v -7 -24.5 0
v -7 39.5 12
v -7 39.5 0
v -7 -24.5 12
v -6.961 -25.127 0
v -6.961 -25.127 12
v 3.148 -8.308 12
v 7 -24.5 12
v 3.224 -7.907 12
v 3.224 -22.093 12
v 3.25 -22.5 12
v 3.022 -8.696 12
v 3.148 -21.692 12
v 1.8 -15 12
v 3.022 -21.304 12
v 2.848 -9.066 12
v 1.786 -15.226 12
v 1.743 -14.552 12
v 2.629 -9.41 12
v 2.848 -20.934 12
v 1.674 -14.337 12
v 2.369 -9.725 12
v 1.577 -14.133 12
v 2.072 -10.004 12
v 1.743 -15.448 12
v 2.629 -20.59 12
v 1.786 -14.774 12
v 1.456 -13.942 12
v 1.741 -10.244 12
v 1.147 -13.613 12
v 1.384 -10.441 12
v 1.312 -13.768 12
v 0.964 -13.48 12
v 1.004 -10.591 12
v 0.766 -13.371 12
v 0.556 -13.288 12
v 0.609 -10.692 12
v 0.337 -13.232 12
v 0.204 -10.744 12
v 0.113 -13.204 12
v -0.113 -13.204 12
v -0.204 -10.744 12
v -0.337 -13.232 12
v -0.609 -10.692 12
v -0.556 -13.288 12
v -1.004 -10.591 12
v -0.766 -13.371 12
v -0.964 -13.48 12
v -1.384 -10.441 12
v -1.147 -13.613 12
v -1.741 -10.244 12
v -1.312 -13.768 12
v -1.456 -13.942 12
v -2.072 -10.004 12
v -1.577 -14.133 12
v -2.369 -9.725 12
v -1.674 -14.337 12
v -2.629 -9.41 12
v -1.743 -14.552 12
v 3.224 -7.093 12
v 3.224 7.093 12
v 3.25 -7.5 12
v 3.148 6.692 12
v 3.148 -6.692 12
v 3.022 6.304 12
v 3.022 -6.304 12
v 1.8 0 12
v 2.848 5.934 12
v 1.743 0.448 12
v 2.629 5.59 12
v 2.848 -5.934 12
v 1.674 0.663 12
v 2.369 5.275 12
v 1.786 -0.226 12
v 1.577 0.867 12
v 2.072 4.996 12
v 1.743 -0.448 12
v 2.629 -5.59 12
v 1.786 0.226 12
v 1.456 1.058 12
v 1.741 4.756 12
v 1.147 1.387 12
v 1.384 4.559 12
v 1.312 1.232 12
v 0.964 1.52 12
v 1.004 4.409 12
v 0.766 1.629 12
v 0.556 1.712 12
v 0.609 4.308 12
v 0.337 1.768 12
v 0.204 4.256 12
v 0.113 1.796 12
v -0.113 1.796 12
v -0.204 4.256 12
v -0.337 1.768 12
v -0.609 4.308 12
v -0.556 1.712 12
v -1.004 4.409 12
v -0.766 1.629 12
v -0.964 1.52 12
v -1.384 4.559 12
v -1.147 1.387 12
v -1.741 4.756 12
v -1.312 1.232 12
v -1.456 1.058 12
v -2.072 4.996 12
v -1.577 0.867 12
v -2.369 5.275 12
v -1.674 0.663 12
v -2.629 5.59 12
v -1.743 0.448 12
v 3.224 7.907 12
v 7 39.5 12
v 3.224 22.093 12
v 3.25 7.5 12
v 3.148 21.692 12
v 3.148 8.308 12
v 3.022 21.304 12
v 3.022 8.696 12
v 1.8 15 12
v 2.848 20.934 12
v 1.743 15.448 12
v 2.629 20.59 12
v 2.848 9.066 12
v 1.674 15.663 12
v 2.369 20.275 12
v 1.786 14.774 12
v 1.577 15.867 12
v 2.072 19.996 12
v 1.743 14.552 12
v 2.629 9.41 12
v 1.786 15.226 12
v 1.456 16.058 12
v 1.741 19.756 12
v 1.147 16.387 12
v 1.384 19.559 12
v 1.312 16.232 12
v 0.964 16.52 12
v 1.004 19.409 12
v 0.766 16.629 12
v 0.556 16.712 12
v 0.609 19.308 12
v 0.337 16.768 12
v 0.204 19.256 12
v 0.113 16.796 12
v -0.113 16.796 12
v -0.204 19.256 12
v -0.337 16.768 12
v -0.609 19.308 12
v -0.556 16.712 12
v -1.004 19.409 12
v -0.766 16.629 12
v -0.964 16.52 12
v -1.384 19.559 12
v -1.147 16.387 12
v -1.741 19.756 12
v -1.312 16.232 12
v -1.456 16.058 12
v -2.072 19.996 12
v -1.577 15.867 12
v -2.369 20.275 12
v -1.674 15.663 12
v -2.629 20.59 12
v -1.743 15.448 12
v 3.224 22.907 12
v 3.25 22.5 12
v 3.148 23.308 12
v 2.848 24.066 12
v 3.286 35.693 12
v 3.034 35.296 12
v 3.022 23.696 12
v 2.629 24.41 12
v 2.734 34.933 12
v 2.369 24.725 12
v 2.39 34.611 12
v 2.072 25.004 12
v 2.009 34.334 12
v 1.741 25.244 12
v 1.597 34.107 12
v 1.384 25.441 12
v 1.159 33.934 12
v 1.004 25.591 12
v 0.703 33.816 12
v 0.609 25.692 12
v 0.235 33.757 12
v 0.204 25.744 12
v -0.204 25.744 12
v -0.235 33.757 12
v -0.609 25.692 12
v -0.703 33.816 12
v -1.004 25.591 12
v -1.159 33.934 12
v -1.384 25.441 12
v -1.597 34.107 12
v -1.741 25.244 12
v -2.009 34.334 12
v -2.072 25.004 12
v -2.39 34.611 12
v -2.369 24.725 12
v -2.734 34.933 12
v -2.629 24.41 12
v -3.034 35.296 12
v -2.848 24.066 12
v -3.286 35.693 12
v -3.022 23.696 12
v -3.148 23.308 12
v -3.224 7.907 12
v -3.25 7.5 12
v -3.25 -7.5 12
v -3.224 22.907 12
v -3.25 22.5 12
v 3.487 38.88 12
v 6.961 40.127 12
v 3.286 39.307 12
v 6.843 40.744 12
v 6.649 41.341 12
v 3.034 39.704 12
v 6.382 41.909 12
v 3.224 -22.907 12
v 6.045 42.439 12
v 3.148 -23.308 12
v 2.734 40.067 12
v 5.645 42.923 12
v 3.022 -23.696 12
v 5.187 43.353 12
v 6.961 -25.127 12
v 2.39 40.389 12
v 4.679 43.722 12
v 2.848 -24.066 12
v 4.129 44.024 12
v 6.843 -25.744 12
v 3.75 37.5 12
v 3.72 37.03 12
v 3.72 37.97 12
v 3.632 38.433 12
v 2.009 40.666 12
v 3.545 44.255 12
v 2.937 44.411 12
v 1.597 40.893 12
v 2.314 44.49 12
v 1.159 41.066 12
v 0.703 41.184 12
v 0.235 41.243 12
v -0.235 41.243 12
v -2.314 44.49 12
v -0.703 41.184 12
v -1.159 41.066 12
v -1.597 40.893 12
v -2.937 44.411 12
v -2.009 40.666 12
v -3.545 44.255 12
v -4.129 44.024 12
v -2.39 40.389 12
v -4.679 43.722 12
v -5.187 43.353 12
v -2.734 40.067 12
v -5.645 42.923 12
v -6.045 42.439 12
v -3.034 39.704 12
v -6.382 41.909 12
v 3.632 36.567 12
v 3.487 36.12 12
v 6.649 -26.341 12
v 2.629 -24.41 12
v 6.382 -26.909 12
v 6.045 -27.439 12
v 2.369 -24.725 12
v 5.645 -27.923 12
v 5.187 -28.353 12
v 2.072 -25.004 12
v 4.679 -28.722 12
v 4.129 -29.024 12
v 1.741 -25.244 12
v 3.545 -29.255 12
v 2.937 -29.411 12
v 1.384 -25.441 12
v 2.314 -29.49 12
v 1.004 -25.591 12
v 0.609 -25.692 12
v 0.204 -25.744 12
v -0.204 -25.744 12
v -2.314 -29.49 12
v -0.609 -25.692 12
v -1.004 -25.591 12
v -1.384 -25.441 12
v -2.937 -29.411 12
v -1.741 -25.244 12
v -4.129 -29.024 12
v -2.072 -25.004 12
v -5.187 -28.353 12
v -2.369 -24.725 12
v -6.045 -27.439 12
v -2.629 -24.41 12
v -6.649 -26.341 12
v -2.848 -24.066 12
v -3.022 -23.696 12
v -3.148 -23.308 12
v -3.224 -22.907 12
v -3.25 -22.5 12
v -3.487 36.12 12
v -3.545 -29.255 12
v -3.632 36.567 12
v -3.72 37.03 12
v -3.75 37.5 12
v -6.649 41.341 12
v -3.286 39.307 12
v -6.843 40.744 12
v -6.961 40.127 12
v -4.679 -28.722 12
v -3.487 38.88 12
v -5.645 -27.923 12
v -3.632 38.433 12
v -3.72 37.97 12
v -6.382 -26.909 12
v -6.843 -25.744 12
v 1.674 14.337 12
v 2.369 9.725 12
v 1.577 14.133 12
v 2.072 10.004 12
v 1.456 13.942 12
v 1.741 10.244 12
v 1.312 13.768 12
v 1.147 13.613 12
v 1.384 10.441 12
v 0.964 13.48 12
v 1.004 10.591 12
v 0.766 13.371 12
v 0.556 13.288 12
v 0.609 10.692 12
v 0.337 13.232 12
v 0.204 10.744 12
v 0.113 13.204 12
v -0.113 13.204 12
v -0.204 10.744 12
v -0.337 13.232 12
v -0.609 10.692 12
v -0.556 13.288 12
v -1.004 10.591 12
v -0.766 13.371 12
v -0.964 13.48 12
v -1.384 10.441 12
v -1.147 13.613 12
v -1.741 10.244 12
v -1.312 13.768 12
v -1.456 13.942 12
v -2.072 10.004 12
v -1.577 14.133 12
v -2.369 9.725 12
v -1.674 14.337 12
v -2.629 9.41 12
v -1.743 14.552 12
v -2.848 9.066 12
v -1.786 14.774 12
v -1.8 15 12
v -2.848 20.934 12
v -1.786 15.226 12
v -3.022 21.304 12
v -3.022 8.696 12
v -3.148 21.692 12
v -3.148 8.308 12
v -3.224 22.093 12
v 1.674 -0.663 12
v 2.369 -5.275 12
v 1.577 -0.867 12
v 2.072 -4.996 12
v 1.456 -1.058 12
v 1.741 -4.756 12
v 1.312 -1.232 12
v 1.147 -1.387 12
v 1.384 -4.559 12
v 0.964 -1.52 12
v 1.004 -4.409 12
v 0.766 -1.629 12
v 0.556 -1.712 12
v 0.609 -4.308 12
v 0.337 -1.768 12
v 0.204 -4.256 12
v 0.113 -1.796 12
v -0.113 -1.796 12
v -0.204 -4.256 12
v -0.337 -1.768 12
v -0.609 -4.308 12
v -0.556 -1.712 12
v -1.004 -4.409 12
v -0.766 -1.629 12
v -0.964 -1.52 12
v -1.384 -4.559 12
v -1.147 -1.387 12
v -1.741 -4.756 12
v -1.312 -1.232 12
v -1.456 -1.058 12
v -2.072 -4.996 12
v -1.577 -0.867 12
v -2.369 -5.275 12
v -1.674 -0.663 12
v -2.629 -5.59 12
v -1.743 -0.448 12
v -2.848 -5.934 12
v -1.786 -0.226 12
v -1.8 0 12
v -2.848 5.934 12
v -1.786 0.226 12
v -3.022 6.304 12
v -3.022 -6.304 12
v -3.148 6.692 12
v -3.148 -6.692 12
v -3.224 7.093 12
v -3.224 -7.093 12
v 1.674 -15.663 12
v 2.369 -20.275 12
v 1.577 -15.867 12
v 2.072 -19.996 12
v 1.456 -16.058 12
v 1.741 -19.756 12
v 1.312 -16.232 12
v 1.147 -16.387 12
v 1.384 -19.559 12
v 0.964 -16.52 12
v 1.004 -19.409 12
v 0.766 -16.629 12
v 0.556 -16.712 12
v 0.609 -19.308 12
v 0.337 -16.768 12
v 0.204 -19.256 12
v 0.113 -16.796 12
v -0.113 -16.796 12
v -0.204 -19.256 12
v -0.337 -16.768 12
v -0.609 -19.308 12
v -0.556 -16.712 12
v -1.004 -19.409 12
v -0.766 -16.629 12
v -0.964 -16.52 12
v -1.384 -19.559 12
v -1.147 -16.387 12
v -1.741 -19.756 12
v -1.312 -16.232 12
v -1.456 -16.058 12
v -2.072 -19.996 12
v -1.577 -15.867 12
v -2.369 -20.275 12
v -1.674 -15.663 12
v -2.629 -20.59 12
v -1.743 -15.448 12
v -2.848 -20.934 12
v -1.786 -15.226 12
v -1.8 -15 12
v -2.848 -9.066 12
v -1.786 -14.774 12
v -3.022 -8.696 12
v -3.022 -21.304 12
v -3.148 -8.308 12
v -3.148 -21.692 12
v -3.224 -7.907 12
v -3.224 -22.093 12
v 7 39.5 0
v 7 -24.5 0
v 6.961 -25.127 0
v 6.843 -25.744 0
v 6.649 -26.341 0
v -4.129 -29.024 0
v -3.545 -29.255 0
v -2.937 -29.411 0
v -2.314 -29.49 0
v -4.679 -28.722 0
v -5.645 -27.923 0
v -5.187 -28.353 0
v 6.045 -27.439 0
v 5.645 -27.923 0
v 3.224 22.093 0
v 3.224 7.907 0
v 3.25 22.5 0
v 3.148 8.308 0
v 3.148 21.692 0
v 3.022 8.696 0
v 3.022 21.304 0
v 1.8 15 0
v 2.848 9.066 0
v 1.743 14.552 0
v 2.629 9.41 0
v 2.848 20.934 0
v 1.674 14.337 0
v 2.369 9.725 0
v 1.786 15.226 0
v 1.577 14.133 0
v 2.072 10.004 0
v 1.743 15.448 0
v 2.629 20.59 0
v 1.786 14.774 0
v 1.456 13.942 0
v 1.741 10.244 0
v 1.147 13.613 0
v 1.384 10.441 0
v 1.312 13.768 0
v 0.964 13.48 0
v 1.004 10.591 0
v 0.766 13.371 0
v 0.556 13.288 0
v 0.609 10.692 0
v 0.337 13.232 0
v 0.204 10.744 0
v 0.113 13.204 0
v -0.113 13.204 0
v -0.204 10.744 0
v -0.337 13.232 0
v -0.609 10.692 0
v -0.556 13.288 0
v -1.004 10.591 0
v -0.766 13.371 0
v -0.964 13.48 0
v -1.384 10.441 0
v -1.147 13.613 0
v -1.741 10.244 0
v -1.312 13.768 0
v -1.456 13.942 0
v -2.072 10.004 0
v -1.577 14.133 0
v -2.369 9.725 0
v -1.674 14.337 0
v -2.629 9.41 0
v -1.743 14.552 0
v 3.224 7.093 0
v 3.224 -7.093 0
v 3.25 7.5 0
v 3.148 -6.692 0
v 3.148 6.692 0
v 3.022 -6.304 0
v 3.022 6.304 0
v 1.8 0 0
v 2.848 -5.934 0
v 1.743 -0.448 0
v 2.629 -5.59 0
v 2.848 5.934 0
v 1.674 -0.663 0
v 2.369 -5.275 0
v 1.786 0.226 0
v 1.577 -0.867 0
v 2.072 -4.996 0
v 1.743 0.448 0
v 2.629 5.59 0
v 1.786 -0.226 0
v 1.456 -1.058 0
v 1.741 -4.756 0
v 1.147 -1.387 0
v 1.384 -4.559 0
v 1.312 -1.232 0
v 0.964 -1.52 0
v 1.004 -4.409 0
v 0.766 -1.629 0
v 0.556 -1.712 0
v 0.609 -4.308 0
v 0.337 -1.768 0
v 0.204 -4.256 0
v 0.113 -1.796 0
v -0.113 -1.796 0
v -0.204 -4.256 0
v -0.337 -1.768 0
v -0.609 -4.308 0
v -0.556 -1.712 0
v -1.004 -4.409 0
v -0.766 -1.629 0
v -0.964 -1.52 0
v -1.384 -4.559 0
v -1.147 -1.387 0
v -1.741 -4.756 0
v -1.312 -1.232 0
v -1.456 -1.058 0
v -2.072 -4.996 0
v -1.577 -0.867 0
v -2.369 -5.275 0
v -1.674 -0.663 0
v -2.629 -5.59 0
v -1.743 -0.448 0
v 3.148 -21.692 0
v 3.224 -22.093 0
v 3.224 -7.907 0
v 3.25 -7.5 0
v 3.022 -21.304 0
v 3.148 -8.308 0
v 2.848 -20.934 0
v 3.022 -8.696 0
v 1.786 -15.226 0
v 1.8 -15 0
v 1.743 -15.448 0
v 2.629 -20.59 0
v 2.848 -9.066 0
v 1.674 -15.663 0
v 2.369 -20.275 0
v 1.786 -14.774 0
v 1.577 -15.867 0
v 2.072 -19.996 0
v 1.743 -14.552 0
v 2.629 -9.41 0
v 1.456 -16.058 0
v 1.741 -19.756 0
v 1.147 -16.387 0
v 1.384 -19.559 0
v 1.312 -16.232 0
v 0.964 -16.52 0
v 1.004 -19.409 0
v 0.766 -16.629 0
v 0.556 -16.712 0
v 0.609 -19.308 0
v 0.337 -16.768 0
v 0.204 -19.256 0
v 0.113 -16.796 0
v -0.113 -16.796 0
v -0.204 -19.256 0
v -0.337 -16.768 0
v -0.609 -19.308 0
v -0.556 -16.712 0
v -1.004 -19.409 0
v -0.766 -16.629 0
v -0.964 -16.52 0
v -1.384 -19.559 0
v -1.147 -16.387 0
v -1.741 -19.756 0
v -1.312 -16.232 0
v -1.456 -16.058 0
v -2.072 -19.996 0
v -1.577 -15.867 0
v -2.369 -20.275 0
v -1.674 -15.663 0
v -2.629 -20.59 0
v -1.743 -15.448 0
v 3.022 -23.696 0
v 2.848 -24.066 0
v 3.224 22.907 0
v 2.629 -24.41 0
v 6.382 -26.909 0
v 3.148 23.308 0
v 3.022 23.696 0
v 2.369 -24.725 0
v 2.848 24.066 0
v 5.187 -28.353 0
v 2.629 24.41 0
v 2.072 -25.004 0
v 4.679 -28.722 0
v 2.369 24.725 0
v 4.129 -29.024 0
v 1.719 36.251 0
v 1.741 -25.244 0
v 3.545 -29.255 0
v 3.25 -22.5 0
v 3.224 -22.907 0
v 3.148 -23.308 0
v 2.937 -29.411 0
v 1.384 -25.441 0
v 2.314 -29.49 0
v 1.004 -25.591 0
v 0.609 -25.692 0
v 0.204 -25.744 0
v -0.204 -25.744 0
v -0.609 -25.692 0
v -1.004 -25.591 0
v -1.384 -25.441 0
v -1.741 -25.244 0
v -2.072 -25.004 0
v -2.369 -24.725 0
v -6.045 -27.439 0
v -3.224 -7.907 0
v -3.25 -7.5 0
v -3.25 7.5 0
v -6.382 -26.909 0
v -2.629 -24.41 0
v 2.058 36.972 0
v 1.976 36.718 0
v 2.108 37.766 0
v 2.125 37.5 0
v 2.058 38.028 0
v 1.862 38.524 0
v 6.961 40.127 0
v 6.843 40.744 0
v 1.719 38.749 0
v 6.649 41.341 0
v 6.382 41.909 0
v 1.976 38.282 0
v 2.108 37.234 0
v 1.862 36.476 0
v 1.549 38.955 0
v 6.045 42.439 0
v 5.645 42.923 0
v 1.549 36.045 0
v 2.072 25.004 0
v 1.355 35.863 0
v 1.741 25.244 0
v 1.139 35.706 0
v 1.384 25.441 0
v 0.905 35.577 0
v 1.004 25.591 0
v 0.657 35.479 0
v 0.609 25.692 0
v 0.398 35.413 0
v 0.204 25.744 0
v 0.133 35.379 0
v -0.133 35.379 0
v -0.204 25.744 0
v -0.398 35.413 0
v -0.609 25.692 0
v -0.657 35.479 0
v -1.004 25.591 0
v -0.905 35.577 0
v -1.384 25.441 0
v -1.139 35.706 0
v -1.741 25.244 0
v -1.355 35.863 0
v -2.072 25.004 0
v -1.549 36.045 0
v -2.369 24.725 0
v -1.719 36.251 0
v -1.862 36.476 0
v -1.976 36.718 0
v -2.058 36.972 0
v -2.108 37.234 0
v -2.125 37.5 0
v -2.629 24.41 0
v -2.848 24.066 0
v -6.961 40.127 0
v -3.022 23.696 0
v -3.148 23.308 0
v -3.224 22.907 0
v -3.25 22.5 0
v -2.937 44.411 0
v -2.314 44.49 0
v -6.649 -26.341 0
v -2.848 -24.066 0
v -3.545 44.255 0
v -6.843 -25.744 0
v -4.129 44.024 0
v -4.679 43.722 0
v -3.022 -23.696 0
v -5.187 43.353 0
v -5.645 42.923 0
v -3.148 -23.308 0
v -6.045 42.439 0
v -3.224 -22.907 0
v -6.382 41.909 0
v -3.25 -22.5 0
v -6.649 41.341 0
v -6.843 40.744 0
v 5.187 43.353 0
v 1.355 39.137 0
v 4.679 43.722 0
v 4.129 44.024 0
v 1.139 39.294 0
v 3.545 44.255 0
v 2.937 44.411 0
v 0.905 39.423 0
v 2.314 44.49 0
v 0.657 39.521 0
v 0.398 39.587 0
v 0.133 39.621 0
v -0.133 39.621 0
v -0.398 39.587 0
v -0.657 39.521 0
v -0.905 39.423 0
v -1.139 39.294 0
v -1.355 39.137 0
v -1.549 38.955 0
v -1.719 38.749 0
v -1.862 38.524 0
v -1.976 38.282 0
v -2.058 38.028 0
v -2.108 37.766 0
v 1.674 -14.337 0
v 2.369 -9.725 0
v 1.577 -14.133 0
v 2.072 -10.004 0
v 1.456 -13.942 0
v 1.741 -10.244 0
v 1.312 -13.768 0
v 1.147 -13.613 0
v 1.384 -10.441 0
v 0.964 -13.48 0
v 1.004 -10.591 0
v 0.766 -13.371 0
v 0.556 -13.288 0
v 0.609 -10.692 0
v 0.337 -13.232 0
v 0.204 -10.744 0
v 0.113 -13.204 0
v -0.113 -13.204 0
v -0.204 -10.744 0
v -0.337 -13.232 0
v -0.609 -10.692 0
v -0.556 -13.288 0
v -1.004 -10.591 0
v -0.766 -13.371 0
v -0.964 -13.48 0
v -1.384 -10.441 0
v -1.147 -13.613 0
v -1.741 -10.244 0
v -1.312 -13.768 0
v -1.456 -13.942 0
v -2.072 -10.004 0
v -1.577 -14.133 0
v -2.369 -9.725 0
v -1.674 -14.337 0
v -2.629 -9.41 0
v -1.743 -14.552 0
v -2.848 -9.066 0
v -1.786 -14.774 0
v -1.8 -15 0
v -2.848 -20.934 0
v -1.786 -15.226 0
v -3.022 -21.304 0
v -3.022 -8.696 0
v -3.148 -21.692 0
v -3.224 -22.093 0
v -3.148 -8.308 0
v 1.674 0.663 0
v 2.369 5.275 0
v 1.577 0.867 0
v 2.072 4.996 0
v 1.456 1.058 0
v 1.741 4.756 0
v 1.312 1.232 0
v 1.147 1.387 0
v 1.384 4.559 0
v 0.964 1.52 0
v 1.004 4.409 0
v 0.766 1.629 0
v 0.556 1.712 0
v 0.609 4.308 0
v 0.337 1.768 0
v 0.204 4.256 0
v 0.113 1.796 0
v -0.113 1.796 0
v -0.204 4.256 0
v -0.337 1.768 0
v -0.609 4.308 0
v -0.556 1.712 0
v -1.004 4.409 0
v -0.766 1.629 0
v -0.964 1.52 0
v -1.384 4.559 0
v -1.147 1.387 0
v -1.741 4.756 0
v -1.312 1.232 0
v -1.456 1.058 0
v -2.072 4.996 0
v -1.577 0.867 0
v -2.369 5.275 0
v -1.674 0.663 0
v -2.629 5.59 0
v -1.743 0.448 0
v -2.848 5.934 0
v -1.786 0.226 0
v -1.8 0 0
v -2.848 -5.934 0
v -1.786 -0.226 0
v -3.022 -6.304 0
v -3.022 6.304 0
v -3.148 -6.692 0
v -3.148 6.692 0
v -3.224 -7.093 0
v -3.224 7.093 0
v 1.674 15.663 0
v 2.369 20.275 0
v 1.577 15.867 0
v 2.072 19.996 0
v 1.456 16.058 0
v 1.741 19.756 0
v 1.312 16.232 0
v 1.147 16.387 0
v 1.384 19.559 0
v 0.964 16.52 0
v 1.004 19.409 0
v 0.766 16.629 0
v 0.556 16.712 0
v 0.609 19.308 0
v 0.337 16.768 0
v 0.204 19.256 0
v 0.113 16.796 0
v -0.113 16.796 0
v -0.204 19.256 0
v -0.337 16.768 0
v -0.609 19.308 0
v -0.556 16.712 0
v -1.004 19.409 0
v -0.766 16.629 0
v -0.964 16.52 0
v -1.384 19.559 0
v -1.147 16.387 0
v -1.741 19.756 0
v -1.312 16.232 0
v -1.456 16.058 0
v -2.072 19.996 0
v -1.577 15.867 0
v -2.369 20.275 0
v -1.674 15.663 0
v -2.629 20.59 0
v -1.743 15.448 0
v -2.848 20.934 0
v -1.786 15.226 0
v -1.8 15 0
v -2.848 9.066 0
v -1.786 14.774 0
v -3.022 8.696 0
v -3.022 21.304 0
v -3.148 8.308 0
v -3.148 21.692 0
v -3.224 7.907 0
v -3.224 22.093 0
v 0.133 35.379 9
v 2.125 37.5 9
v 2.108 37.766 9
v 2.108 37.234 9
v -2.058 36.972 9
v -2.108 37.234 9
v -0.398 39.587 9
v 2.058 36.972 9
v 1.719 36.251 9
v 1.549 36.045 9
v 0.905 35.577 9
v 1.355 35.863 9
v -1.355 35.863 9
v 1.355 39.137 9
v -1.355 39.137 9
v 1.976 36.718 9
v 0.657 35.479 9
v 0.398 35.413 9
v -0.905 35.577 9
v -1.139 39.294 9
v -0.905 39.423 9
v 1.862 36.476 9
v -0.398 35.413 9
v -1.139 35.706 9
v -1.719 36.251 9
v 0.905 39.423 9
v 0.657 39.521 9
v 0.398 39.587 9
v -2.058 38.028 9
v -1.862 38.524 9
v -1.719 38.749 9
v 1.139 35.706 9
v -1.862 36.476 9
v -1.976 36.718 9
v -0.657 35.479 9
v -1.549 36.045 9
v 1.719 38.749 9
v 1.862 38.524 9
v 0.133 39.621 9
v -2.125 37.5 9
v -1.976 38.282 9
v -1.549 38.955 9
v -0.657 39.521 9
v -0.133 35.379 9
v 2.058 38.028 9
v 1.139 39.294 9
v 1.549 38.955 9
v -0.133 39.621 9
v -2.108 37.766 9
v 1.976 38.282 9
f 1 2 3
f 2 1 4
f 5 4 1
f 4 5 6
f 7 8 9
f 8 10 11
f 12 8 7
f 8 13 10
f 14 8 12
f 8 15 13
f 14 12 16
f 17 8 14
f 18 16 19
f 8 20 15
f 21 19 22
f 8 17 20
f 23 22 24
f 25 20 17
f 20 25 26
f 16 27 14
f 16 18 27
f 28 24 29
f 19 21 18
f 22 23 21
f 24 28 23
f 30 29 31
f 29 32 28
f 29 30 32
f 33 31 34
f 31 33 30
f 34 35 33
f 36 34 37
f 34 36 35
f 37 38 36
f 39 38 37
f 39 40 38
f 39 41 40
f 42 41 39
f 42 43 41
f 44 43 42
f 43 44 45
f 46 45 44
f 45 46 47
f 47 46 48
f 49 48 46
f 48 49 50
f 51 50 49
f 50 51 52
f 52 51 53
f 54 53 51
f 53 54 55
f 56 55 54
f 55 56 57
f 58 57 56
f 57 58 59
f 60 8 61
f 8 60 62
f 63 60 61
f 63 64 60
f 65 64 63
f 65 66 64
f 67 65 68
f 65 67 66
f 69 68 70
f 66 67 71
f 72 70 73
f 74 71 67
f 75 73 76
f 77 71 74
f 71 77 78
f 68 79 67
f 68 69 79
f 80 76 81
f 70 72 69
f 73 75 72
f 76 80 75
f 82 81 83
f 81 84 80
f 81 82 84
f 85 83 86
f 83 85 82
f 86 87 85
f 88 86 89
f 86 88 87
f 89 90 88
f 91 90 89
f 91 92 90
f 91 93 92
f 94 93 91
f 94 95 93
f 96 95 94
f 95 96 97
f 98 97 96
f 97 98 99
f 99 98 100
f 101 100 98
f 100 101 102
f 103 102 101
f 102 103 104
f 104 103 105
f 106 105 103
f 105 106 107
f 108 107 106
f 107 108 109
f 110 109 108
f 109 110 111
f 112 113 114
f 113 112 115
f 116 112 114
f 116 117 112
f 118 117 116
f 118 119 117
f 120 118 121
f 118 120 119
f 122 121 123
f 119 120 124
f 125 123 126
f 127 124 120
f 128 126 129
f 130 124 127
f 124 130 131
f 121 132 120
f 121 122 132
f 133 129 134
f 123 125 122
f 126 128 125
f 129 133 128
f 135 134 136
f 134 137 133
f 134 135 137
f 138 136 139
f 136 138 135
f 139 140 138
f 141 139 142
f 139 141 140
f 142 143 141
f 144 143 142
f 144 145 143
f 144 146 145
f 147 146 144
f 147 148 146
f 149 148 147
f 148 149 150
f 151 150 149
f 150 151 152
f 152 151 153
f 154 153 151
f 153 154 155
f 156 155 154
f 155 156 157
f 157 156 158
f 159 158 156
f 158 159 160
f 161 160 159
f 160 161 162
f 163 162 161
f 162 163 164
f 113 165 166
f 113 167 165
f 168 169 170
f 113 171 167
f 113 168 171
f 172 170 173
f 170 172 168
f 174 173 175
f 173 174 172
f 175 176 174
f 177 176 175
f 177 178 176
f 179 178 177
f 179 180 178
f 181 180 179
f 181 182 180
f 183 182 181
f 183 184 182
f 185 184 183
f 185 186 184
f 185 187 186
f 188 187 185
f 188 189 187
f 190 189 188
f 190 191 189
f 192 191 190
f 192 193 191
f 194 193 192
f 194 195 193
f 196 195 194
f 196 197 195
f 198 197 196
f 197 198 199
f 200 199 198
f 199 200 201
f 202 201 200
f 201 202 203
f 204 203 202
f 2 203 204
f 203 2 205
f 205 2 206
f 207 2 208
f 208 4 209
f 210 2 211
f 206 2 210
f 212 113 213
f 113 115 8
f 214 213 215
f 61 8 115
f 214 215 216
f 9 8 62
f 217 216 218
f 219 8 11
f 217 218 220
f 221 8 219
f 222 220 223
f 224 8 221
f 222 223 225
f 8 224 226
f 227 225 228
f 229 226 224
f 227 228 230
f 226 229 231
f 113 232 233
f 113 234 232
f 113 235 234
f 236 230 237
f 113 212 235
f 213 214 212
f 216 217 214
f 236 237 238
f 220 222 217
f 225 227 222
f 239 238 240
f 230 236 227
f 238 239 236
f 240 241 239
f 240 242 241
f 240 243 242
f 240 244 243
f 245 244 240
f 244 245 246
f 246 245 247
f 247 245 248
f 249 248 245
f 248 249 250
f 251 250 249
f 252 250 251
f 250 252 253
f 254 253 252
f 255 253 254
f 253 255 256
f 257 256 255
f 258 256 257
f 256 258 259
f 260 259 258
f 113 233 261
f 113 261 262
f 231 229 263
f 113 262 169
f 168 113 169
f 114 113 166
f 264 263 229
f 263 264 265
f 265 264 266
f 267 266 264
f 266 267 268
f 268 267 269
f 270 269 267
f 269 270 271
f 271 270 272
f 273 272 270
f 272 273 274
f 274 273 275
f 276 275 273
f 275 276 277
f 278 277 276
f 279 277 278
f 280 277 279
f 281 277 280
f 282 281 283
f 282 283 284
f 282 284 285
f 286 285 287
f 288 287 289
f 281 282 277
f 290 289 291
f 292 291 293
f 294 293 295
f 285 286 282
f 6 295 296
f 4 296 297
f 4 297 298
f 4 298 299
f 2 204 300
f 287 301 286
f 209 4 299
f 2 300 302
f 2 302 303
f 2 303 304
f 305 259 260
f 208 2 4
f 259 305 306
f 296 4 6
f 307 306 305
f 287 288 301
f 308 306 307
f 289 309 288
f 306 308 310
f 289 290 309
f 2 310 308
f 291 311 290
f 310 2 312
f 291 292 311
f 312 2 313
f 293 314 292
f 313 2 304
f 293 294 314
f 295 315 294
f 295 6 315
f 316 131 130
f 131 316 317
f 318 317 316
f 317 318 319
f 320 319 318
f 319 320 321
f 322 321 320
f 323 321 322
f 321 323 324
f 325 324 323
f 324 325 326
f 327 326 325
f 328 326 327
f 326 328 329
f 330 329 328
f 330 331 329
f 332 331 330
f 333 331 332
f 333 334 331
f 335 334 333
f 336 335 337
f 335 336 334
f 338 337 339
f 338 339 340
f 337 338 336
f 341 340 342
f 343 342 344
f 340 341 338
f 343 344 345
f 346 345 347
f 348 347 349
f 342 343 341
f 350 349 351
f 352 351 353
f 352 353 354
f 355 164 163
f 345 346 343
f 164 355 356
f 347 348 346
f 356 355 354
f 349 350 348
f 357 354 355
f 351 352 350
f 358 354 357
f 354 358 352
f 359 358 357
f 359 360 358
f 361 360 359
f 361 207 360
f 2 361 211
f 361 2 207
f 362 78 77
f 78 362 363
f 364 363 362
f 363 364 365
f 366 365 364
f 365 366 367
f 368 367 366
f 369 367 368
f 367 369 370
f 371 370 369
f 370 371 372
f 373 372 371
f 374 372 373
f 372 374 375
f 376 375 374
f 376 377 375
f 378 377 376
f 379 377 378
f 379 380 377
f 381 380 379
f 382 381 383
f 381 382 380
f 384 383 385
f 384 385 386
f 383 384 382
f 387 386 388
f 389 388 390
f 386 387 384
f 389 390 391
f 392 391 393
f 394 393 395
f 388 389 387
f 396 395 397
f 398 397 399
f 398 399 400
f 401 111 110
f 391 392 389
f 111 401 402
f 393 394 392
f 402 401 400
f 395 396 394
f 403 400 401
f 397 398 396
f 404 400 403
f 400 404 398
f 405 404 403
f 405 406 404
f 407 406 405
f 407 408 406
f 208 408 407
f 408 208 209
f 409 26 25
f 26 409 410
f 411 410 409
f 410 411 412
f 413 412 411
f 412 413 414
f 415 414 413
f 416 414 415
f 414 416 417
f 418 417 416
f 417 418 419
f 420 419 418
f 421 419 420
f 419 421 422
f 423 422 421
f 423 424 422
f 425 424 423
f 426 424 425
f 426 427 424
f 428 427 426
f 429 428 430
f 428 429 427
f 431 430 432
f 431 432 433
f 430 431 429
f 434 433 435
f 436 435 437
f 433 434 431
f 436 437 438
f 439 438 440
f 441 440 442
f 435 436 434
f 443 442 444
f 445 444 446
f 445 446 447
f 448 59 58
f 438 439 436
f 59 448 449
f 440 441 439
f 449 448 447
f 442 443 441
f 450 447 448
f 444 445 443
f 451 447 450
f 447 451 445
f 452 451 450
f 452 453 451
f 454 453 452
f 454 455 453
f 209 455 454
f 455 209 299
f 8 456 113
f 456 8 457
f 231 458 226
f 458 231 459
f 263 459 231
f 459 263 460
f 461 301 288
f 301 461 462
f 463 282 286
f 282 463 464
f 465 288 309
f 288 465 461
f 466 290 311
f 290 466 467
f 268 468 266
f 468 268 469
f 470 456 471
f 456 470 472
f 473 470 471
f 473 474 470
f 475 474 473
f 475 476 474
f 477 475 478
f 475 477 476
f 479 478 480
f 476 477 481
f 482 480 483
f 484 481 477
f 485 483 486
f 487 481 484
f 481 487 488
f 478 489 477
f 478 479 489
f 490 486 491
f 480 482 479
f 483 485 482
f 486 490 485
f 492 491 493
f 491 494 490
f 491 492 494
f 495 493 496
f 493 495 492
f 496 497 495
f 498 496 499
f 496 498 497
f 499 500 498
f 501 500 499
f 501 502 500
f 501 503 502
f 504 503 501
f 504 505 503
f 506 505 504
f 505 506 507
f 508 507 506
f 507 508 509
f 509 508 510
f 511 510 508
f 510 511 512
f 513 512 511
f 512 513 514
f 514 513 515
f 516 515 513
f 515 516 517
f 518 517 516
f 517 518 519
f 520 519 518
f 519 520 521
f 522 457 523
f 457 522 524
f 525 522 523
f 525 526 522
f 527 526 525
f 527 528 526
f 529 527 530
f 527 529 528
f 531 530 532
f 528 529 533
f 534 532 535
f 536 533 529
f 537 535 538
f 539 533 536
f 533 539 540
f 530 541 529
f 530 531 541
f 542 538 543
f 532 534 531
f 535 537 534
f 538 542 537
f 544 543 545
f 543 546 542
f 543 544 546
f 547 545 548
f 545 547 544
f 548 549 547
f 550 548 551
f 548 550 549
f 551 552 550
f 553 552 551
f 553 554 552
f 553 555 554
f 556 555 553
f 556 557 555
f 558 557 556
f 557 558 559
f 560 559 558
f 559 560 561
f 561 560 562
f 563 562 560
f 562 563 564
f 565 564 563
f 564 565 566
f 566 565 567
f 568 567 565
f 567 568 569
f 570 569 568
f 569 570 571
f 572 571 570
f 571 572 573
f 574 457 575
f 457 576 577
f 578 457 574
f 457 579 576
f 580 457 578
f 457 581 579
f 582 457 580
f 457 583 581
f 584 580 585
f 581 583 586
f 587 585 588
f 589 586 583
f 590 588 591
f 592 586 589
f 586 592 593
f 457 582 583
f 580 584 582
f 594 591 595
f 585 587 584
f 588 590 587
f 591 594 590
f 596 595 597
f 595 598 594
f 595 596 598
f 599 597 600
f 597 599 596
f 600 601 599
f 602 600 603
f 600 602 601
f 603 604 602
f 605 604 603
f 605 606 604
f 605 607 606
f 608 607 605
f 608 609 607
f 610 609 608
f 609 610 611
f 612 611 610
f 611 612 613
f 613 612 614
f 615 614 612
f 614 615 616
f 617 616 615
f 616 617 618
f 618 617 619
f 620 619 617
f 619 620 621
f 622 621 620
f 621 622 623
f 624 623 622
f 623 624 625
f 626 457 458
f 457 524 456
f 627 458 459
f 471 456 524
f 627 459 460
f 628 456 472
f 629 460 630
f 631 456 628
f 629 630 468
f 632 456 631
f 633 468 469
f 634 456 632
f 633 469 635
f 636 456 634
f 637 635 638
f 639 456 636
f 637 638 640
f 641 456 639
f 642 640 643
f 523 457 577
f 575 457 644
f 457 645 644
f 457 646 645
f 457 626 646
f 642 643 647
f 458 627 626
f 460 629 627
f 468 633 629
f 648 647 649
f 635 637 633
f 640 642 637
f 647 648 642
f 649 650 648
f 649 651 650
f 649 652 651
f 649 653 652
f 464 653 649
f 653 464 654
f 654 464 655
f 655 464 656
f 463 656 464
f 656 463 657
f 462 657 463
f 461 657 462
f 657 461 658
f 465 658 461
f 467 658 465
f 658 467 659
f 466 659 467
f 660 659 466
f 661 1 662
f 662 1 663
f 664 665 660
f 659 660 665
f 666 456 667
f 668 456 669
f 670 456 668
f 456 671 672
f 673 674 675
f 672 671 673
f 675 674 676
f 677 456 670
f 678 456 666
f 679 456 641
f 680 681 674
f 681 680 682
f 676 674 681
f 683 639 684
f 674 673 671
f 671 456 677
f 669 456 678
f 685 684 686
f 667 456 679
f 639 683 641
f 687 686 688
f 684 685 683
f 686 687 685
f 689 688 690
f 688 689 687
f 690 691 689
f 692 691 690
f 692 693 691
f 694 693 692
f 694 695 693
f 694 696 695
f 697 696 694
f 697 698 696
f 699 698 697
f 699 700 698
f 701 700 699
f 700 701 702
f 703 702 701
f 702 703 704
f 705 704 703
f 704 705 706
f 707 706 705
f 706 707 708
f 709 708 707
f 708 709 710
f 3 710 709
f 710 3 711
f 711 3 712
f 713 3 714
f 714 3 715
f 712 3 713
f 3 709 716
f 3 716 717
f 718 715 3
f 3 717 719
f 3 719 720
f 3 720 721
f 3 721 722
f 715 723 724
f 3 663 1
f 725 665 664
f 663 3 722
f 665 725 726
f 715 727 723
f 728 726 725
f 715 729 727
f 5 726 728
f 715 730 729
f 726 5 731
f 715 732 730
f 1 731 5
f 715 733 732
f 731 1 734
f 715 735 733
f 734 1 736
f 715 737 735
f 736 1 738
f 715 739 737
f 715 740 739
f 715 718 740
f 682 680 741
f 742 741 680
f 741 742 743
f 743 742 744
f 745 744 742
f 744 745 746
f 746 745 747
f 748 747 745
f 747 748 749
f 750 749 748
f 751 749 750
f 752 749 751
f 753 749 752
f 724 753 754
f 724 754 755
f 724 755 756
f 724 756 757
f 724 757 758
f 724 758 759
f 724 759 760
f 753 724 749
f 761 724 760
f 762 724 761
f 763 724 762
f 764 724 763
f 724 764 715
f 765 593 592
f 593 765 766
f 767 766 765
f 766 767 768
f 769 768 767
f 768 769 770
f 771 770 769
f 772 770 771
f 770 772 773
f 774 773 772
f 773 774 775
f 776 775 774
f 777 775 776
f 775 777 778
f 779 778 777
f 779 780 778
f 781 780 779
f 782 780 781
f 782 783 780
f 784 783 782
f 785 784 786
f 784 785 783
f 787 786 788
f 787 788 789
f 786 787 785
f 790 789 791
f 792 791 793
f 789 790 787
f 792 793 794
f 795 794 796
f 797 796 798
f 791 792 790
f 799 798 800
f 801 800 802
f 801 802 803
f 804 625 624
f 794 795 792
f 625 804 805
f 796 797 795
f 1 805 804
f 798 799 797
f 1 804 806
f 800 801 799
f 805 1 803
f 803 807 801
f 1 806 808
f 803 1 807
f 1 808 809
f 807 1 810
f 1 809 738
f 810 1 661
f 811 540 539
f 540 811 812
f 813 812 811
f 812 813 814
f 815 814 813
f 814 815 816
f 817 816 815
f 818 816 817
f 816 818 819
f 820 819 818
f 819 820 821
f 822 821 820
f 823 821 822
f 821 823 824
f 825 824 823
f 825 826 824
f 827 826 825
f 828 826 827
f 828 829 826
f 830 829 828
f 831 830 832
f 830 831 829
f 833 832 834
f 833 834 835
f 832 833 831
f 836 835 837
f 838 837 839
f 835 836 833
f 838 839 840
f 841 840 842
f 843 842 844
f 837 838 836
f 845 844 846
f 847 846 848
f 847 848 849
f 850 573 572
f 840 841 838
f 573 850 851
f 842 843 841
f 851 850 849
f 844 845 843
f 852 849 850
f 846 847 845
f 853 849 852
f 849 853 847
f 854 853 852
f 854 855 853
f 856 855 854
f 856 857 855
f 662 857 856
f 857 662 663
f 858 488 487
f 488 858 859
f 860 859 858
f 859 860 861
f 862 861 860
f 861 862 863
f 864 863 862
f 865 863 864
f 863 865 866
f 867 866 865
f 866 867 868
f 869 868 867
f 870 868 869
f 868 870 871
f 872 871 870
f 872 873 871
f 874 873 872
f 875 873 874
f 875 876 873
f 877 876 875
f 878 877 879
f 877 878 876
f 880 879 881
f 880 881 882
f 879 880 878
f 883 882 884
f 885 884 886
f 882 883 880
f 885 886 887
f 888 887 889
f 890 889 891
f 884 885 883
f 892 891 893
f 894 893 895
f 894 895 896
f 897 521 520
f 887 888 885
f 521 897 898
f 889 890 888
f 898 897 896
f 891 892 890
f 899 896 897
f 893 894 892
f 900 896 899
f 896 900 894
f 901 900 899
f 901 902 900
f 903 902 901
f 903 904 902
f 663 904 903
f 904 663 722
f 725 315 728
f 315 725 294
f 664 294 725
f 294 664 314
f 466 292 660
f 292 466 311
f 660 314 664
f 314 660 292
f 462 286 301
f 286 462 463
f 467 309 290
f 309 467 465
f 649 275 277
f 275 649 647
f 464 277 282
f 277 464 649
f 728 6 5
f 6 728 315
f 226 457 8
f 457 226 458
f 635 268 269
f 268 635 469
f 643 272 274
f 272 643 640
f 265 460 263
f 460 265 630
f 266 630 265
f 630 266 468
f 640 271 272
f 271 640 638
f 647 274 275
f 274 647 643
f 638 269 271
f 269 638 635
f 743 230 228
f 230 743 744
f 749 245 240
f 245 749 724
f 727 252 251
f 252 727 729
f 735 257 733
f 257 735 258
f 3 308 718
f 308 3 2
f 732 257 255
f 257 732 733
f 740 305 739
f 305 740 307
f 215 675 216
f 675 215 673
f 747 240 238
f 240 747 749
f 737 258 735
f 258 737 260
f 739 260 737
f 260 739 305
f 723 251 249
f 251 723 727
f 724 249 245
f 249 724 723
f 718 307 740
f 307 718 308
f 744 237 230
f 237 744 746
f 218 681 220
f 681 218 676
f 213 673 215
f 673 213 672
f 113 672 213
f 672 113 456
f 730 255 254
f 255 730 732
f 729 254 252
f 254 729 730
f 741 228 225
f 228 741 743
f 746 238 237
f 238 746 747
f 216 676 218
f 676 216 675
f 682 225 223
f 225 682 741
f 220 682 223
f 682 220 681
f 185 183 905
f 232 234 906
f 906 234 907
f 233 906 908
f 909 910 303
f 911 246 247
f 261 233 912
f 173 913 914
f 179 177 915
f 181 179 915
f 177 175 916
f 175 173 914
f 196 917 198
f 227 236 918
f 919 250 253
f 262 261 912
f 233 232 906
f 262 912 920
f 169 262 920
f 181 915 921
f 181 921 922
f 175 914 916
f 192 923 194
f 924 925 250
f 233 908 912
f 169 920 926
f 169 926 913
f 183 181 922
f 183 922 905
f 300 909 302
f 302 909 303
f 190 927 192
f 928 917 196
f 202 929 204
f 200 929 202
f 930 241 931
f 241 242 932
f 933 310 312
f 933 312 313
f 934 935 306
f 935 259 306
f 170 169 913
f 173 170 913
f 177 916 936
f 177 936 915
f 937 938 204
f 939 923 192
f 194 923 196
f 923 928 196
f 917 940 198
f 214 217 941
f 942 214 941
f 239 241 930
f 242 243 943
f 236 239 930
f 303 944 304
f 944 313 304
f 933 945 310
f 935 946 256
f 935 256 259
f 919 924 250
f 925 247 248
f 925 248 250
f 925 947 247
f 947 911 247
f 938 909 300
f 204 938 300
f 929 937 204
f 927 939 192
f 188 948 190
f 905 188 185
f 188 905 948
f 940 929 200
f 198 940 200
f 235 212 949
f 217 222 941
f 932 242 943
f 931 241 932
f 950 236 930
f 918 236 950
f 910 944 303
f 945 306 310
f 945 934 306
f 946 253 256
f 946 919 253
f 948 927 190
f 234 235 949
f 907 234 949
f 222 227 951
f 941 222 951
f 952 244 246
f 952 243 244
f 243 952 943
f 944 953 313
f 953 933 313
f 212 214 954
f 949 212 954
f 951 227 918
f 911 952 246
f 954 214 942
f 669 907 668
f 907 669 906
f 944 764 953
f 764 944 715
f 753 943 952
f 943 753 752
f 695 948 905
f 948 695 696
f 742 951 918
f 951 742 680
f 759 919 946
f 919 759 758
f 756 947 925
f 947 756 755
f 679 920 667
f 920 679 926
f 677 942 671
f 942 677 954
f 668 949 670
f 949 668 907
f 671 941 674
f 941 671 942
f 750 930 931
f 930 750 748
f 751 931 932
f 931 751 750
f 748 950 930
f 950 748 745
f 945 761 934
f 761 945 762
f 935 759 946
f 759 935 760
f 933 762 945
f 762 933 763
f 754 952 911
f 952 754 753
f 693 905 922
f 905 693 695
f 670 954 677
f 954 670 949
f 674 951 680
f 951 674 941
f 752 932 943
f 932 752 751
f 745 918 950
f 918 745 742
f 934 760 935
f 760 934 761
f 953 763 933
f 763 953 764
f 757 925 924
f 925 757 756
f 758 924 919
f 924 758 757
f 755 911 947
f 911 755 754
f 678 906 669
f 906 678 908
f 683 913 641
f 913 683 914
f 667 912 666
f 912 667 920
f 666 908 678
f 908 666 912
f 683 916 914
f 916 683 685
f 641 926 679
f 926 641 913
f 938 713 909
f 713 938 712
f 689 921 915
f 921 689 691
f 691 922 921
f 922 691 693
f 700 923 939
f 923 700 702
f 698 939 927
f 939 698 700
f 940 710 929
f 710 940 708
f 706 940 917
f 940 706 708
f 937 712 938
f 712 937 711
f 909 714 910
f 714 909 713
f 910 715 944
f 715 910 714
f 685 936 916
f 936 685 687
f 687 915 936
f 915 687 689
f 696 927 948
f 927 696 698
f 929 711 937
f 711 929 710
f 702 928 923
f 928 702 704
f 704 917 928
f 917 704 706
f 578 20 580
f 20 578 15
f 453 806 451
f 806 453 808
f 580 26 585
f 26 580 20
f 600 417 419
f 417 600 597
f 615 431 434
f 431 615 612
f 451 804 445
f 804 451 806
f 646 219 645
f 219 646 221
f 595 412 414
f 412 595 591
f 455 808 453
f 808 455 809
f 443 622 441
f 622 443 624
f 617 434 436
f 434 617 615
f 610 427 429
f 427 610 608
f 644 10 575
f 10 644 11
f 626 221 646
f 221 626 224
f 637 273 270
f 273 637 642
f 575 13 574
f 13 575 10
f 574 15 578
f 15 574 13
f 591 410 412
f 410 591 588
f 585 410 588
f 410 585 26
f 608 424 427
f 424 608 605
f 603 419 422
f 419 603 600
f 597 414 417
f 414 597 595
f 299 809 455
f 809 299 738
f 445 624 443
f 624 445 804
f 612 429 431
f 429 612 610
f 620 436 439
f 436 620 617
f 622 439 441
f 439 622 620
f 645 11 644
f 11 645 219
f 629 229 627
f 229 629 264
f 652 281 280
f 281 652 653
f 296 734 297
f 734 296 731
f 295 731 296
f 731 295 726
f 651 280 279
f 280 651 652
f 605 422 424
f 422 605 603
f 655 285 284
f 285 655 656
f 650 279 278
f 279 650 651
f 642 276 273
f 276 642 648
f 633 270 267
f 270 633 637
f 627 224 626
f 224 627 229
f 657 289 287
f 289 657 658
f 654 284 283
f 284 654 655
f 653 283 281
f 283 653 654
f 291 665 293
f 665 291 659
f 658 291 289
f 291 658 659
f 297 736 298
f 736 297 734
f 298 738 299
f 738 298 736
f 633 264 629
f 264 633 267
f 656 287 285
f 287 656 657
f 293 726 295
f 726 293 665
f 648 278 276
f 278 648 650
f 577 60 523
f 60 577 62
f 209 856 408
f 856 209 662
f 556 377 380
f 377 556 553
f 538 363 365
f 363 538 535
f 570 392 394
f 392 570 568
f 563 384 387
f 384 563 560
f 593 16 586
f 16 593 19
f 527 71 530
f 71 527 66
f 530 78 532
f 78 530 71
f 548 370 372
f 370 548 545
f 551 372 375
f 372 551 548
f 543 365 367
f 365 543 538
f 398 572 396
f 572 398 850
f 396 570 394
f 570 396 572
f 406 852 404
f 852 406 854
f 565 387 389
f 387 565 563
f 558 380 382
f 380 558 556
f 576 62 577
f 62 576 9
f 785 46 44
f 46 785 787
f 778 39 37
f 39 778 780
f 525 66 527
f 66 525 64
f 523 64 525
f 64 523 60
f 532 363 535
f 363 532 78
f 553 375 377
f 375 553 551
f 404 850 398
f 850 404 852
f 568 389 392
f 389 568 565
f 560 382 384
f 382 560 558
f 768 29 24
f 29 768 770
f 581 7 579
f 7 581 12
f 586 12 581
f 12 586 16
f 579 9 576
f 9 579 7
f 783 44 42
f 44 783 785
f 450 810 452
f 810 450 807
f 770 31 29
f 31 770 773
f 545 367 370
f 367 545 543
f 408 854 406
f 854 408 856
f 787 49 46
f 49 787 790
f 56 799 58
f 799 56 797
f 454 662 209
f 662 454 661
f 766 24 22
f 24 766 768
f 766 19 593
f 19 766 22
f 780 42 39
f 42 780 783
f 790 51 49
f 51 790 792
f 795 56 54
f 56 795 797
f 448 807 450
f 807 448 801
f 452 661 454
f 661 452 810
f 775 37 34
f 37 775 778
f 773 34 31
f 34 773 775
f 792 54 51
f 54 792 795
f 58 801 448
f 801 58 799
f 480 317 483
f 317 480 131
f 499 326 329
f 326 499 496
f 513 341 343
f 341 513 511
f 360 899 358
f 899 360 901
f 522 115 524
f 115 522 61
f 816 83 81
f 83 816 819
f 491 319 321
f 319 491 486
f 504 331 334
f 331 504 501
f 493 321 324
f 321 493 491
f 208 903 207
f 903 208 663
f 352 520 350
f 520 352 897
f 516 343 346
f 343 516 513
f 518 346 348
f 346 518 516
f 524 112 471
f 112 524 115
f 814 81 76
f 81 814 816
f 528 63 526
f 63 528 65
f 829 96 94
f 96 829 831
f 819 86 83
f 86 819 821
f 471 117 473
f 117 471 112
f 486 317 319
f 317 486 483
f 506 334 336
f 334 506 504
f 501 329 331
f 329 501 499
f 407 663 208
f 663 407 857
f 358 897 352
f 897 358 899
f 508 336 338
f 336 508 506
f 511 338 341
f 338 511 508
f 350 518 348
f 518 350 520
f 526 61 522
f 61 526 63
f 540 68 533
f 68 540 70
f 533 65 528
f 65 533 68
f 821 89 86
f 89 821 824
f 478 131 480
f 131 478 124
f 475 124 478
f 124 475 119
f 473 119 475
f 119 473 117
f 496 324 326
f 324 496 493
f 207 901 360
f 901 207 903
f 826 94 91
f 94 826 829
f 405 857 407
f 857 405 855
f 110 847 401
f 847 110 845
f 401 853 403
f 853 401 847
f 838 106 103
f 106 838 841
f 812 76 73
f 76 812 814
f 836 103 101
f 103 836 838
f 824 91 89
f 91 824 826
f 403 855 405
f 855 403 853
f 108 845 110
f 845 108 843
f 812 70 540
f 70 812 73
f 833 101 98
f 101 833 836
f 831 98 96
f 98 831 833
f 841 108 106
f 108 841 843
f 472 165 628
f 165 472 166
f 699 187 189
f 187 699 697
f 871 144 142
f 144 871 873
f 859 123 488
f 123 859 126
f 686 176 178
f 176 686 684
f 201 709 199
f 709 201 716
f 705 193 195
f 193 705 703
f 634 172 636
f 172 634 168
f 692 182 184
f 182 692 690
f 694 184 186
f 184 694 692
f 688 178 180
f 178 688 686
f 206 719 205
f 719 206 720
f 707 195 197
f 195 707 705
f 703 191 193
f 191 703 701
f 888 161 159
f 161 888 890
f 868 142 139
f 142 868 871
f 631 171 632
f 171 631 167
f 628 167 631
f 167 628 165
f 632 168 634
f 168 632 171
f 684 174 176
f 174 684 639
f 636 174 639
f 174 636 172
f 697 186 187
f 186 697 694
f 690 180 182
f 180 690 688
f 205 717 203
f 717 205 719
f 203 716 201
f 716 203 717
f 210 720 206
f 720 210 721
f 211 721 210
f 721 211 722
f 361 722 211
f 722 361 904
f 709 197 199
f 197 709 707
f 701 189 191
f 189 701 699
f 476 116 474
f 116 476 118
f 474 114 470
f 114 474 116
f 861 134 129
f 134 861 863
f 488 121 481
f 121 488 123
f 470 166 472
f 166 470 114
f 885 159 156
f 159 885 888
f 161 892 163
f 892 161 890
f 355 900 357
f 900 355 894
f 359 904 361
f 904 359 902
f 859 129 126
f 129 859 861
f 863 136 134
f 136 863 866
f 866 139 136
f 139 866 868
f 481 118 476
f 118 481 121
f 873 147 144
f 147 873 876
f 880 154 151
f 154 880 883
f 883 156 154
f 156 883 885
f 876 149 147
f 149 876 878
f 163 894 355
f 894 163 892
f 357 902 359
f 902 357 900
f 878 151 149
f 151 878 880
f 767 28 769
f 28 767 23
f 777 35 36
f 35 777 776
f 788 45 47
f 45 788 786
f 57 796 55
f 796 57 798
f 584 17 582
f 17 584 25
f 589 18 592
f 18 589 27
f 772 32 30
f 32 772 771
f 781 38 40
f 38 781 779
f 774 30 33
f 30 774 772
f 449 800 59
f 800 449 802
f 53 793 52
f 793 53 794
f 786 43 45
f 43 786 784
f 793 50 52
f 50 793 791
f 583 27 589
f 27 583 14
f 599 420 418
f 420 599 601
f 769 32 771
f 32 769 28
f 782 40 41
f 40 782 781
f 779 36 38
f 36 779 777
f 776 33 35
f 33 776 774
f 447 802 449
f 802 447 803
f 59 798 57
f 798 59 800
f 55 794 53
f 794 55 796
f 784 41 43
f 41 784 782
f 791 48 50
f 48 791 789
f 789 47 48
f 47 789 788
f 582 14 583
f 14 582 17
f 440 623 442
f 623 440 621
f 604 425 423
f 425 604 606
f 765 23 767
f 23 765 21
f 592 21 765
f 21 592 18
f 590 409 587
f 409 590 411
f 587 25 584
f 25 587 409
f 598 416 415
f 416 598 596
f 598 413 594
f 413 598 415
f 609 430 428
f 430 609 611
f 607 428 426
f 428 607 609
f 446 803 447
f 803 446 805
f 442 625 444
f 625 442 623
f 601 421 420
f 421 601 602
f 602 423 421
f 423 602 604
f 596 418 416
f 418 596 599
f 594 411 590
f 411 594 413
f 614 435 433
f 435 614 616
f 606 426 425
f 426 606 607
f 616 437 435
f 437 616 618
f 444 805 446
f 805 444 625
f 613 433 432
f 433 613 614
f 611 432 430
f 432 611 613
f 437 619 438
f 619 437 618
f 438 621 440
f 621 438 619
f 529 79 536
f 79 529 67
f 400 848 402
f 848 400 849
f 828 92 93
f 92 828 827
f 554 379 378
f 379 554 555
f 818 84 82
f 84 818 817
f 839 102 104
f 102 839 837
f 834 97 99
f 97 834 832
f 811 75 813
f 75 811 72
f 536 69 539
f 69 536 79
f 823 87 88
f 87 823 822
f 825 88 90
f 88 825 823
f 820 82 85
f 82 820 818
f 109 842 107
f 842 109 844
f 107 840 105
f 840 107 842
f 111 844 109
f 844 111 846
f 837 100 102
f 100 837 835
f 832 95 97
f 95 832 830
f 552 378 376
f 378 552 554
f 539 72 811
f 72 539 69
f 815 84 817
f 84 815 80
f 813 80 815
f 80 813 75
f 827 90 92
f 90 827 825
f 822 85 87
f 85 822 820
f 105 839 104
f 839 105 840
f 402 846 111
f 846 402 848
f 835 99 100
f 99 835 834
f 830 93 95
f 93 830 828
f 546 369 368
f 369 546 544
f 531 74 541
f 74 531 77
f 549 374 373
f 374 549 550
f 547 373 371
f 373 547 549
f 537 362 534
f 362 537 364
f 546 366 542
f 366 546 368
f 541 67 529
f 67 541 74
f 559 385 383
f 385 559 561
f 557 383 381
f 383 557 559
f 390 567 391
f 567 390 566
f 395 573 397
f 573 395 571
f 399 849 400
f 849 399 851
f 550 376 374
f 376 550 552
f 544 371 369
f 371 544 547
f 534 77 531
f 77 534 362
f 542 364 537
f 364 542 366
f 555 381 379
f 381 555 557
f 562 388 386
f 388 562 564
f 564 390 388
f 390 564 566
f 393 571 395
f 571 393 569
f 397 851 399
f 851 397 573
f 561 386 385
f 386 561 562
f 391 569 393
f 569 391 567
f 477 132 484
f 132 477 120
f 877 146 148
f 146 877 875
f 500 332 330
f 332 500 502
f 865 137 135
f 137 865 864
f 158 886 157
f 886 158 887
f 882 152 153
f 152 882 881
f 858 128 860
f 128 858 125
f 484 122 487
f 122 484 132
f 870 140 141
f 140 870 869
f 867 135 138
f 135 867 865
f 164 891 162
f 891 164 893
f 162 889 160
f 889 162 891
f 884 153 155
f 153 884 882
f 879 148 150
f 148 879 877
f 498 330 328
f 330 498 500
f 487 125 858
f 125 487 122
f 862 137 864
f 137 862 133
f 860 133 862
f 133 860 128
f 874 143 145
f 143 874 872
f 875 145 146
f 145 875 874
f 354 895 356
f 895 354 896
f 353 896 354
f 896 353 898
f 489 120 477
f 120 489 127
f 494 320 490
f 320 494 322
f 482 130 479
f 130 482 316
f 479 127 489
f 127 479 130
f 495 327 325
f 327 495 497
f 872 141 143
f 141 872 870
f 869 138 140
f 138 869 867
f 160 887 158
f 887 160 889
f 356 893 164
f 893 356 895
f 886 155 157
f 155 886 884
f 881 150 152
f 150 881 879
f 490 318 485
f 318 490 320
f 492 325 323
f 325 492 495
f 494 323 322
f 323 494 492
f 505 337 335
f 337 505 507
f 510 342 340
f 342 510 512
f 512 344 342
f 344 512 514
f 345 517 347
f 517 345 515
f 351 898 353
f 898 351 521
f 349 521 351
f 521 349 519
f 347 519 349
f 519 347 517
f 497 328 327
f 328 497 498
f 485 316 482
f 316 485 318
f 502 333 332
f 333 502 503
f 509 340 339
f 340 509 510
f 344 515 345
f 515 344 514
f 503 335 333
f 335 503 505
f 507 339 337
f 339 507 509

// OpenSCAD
$fn = 50;


difference() {
	union() {
		hull() {
			translate(v = [-2.0000000000, 24.5000000000, 0]) {
				cylinder(h = 12, r = 5);
			}
			translate(v = [2.0000000000, 24.5000000000, 0]) {
				cylinder(h = 12, r = 5);
			}
			translate(v = [-2.0000000000, -24.5000000000, 0]) {
				cylinder(h = 12, r = 5);
			}
			translate(v = [2.0000000000, -24.5000000000, 0]) {
				cylinder(h = 12, r = 5);
			}
		}
		translate(v = [0.0000000000, 30.0000000000, 0]) {
			hull() {
				translate(v = [-2.0000000000, 9.5000000000, 0]) {
					cylinder(h = 12, r = 5);
				}
				translate(v = [2.0000000000, 9.5000000000, 0]) {
					cylinder(h = 12, r = 5);
				}
				translate(v = [-2.0000000000, -9.5000000000, 0]) {
					cylinder(h = 12, r = 5);
				}
				translate(v = [2.0000000000, -9.5000000000, 0]) {
					cylinder(h = 12, r = 5);
				}
			}
		}
		translate(v = [0.0000000000, 30.0000000000, 0]) {
			hull() {
				translate(v = [-2.0000000000, 9.5000000000, 0]) {
					cylinder(h = 12, r = 5);
				}
				translate(v = [2.0000000000, 9.5000000000, 0]) {
					cylinder(h = 12, r = 5);
				}
				translate(v = [-2.0000000000, -9.5000000000, 0]) {
					cylinder(h = 12, r = 5);
				}
				translate(v = [2.0000000000, -9.5000000000, 0]) {
					cylinder(h = 12, r = 5);
				}
			}
		}
	}
	union() {
		translate(v = [0.0000000000, 37.5000000000, 12]) {
			rotate(a = [0, 0, 0]) {
				difference() {
					union() {
						#translate(v = [0, 0, -12.0000000000]) {
							cylinder(h = 12, r = 2.0000000000);
						}
						#translate(v = [0, 0, -3]) {
							cylinder(h = 3, r1 = 2.1250000000, r2 = 3.7500000000);
						}
						#translate(v = [0, 0, -12.0000000000]) {
							cylinder(h = 12, r = 2.1250000000);
						}
						#translate(v = [0, 0, -12.0000000000]) {
							cylinder(h = 12, r = 2.0000000000);
						}
					}
					union();
				}
			}
		}
		translate(v = [0.0000000000, 37.5000000000, 12]) {
			rotate(a = [0, 0, 0]) {
				difference() {
					union() {
						#translate(v = [0, 0, -12.0000000000]) {
							cylinder(h = 12, r = 2.0000000000);
						}
						#translate(v = [0, 0, -3]) {
							cylinder(h = 3, r1 = 2.1250000000, r2 = 3.7500000000);
						}
						#translate(v = [0, 0, -12.0000000000]) {
							cylinder(h = 12, r = 2.1250000000);
						}
						#translate(v = [0, 0, -12.0000000000]) {
							cylinder(h = 12, r = 2.0000000000);
						}
					}
					union();
				}
			}
		}
		translate(v = [0.0000000000, -22.5000000000, 0]) {
			translate(v = [0, 0, -100]) {
				cylinder(h = 200, r = 3.2500000000);
			}
		}
		translate(v = [0.0000000000, -7.5000000000, 0]) {
			translate(v = [0, 0, -100]) {
				cylinder(h = 200, r = 3.2500000000);
			}
		}
		translate(v = [0.0000000000, 7.5000000000, 0]) {
			translate(v = [0, 0, -100]) {
				cylinder(h = 200, r = 3.2500000000);
			}
		}
		translate(v = [0.0000000000, 22.5000000000, 0]) {
			translate(v = [0, 0, -100]) {
				cylinder(h = 200, r = 3.2500000000);
			}
		}
		translate(v = [0.0000000000, -22.5000000000, 0]) {
			translate(v = [0, 0, -100]) {
				cylinder(h = 200, r = 1.8000000000);
			}
		}
		translate(v = [0.0000000000, -15.0000000000, 0]) {
			translate(v = [0, 0, -100]) {
				cylinder(h = 200, r = 1.8000000000);
			}
		}
		translate(v = [0.0000000000, -7.5000000000, 0]) {
			translate(v = [0, 0, -100]) {
				cylinder(h = 200, r = 1.8000000000);
			}
		}
		translate(v = [0, 0, -100]) {
			cylinder(h = 200, r = 1.8000000000);
		}
		translate(v = [0.0000000000, 7.5000000000, 0]) {
			translate(v = [0, 0, -100]) {
				cylinder(h = 200, r = 1.8000000000);
			}
		}
		translate(v = [0.0000000000, 15.0000000000, 0]) {
			translate(v = [0, 0, -100]) {
				cylinder(h = 200, r = 1.8000000000);
			}
		}
		translate(v = [0.0000000000, 22.5000000000, 0]) {
			translate(v = [0, 0, -100]) {
				cylinder(h = 200, r = 1.8000000000);
			}
		}
	}
}
